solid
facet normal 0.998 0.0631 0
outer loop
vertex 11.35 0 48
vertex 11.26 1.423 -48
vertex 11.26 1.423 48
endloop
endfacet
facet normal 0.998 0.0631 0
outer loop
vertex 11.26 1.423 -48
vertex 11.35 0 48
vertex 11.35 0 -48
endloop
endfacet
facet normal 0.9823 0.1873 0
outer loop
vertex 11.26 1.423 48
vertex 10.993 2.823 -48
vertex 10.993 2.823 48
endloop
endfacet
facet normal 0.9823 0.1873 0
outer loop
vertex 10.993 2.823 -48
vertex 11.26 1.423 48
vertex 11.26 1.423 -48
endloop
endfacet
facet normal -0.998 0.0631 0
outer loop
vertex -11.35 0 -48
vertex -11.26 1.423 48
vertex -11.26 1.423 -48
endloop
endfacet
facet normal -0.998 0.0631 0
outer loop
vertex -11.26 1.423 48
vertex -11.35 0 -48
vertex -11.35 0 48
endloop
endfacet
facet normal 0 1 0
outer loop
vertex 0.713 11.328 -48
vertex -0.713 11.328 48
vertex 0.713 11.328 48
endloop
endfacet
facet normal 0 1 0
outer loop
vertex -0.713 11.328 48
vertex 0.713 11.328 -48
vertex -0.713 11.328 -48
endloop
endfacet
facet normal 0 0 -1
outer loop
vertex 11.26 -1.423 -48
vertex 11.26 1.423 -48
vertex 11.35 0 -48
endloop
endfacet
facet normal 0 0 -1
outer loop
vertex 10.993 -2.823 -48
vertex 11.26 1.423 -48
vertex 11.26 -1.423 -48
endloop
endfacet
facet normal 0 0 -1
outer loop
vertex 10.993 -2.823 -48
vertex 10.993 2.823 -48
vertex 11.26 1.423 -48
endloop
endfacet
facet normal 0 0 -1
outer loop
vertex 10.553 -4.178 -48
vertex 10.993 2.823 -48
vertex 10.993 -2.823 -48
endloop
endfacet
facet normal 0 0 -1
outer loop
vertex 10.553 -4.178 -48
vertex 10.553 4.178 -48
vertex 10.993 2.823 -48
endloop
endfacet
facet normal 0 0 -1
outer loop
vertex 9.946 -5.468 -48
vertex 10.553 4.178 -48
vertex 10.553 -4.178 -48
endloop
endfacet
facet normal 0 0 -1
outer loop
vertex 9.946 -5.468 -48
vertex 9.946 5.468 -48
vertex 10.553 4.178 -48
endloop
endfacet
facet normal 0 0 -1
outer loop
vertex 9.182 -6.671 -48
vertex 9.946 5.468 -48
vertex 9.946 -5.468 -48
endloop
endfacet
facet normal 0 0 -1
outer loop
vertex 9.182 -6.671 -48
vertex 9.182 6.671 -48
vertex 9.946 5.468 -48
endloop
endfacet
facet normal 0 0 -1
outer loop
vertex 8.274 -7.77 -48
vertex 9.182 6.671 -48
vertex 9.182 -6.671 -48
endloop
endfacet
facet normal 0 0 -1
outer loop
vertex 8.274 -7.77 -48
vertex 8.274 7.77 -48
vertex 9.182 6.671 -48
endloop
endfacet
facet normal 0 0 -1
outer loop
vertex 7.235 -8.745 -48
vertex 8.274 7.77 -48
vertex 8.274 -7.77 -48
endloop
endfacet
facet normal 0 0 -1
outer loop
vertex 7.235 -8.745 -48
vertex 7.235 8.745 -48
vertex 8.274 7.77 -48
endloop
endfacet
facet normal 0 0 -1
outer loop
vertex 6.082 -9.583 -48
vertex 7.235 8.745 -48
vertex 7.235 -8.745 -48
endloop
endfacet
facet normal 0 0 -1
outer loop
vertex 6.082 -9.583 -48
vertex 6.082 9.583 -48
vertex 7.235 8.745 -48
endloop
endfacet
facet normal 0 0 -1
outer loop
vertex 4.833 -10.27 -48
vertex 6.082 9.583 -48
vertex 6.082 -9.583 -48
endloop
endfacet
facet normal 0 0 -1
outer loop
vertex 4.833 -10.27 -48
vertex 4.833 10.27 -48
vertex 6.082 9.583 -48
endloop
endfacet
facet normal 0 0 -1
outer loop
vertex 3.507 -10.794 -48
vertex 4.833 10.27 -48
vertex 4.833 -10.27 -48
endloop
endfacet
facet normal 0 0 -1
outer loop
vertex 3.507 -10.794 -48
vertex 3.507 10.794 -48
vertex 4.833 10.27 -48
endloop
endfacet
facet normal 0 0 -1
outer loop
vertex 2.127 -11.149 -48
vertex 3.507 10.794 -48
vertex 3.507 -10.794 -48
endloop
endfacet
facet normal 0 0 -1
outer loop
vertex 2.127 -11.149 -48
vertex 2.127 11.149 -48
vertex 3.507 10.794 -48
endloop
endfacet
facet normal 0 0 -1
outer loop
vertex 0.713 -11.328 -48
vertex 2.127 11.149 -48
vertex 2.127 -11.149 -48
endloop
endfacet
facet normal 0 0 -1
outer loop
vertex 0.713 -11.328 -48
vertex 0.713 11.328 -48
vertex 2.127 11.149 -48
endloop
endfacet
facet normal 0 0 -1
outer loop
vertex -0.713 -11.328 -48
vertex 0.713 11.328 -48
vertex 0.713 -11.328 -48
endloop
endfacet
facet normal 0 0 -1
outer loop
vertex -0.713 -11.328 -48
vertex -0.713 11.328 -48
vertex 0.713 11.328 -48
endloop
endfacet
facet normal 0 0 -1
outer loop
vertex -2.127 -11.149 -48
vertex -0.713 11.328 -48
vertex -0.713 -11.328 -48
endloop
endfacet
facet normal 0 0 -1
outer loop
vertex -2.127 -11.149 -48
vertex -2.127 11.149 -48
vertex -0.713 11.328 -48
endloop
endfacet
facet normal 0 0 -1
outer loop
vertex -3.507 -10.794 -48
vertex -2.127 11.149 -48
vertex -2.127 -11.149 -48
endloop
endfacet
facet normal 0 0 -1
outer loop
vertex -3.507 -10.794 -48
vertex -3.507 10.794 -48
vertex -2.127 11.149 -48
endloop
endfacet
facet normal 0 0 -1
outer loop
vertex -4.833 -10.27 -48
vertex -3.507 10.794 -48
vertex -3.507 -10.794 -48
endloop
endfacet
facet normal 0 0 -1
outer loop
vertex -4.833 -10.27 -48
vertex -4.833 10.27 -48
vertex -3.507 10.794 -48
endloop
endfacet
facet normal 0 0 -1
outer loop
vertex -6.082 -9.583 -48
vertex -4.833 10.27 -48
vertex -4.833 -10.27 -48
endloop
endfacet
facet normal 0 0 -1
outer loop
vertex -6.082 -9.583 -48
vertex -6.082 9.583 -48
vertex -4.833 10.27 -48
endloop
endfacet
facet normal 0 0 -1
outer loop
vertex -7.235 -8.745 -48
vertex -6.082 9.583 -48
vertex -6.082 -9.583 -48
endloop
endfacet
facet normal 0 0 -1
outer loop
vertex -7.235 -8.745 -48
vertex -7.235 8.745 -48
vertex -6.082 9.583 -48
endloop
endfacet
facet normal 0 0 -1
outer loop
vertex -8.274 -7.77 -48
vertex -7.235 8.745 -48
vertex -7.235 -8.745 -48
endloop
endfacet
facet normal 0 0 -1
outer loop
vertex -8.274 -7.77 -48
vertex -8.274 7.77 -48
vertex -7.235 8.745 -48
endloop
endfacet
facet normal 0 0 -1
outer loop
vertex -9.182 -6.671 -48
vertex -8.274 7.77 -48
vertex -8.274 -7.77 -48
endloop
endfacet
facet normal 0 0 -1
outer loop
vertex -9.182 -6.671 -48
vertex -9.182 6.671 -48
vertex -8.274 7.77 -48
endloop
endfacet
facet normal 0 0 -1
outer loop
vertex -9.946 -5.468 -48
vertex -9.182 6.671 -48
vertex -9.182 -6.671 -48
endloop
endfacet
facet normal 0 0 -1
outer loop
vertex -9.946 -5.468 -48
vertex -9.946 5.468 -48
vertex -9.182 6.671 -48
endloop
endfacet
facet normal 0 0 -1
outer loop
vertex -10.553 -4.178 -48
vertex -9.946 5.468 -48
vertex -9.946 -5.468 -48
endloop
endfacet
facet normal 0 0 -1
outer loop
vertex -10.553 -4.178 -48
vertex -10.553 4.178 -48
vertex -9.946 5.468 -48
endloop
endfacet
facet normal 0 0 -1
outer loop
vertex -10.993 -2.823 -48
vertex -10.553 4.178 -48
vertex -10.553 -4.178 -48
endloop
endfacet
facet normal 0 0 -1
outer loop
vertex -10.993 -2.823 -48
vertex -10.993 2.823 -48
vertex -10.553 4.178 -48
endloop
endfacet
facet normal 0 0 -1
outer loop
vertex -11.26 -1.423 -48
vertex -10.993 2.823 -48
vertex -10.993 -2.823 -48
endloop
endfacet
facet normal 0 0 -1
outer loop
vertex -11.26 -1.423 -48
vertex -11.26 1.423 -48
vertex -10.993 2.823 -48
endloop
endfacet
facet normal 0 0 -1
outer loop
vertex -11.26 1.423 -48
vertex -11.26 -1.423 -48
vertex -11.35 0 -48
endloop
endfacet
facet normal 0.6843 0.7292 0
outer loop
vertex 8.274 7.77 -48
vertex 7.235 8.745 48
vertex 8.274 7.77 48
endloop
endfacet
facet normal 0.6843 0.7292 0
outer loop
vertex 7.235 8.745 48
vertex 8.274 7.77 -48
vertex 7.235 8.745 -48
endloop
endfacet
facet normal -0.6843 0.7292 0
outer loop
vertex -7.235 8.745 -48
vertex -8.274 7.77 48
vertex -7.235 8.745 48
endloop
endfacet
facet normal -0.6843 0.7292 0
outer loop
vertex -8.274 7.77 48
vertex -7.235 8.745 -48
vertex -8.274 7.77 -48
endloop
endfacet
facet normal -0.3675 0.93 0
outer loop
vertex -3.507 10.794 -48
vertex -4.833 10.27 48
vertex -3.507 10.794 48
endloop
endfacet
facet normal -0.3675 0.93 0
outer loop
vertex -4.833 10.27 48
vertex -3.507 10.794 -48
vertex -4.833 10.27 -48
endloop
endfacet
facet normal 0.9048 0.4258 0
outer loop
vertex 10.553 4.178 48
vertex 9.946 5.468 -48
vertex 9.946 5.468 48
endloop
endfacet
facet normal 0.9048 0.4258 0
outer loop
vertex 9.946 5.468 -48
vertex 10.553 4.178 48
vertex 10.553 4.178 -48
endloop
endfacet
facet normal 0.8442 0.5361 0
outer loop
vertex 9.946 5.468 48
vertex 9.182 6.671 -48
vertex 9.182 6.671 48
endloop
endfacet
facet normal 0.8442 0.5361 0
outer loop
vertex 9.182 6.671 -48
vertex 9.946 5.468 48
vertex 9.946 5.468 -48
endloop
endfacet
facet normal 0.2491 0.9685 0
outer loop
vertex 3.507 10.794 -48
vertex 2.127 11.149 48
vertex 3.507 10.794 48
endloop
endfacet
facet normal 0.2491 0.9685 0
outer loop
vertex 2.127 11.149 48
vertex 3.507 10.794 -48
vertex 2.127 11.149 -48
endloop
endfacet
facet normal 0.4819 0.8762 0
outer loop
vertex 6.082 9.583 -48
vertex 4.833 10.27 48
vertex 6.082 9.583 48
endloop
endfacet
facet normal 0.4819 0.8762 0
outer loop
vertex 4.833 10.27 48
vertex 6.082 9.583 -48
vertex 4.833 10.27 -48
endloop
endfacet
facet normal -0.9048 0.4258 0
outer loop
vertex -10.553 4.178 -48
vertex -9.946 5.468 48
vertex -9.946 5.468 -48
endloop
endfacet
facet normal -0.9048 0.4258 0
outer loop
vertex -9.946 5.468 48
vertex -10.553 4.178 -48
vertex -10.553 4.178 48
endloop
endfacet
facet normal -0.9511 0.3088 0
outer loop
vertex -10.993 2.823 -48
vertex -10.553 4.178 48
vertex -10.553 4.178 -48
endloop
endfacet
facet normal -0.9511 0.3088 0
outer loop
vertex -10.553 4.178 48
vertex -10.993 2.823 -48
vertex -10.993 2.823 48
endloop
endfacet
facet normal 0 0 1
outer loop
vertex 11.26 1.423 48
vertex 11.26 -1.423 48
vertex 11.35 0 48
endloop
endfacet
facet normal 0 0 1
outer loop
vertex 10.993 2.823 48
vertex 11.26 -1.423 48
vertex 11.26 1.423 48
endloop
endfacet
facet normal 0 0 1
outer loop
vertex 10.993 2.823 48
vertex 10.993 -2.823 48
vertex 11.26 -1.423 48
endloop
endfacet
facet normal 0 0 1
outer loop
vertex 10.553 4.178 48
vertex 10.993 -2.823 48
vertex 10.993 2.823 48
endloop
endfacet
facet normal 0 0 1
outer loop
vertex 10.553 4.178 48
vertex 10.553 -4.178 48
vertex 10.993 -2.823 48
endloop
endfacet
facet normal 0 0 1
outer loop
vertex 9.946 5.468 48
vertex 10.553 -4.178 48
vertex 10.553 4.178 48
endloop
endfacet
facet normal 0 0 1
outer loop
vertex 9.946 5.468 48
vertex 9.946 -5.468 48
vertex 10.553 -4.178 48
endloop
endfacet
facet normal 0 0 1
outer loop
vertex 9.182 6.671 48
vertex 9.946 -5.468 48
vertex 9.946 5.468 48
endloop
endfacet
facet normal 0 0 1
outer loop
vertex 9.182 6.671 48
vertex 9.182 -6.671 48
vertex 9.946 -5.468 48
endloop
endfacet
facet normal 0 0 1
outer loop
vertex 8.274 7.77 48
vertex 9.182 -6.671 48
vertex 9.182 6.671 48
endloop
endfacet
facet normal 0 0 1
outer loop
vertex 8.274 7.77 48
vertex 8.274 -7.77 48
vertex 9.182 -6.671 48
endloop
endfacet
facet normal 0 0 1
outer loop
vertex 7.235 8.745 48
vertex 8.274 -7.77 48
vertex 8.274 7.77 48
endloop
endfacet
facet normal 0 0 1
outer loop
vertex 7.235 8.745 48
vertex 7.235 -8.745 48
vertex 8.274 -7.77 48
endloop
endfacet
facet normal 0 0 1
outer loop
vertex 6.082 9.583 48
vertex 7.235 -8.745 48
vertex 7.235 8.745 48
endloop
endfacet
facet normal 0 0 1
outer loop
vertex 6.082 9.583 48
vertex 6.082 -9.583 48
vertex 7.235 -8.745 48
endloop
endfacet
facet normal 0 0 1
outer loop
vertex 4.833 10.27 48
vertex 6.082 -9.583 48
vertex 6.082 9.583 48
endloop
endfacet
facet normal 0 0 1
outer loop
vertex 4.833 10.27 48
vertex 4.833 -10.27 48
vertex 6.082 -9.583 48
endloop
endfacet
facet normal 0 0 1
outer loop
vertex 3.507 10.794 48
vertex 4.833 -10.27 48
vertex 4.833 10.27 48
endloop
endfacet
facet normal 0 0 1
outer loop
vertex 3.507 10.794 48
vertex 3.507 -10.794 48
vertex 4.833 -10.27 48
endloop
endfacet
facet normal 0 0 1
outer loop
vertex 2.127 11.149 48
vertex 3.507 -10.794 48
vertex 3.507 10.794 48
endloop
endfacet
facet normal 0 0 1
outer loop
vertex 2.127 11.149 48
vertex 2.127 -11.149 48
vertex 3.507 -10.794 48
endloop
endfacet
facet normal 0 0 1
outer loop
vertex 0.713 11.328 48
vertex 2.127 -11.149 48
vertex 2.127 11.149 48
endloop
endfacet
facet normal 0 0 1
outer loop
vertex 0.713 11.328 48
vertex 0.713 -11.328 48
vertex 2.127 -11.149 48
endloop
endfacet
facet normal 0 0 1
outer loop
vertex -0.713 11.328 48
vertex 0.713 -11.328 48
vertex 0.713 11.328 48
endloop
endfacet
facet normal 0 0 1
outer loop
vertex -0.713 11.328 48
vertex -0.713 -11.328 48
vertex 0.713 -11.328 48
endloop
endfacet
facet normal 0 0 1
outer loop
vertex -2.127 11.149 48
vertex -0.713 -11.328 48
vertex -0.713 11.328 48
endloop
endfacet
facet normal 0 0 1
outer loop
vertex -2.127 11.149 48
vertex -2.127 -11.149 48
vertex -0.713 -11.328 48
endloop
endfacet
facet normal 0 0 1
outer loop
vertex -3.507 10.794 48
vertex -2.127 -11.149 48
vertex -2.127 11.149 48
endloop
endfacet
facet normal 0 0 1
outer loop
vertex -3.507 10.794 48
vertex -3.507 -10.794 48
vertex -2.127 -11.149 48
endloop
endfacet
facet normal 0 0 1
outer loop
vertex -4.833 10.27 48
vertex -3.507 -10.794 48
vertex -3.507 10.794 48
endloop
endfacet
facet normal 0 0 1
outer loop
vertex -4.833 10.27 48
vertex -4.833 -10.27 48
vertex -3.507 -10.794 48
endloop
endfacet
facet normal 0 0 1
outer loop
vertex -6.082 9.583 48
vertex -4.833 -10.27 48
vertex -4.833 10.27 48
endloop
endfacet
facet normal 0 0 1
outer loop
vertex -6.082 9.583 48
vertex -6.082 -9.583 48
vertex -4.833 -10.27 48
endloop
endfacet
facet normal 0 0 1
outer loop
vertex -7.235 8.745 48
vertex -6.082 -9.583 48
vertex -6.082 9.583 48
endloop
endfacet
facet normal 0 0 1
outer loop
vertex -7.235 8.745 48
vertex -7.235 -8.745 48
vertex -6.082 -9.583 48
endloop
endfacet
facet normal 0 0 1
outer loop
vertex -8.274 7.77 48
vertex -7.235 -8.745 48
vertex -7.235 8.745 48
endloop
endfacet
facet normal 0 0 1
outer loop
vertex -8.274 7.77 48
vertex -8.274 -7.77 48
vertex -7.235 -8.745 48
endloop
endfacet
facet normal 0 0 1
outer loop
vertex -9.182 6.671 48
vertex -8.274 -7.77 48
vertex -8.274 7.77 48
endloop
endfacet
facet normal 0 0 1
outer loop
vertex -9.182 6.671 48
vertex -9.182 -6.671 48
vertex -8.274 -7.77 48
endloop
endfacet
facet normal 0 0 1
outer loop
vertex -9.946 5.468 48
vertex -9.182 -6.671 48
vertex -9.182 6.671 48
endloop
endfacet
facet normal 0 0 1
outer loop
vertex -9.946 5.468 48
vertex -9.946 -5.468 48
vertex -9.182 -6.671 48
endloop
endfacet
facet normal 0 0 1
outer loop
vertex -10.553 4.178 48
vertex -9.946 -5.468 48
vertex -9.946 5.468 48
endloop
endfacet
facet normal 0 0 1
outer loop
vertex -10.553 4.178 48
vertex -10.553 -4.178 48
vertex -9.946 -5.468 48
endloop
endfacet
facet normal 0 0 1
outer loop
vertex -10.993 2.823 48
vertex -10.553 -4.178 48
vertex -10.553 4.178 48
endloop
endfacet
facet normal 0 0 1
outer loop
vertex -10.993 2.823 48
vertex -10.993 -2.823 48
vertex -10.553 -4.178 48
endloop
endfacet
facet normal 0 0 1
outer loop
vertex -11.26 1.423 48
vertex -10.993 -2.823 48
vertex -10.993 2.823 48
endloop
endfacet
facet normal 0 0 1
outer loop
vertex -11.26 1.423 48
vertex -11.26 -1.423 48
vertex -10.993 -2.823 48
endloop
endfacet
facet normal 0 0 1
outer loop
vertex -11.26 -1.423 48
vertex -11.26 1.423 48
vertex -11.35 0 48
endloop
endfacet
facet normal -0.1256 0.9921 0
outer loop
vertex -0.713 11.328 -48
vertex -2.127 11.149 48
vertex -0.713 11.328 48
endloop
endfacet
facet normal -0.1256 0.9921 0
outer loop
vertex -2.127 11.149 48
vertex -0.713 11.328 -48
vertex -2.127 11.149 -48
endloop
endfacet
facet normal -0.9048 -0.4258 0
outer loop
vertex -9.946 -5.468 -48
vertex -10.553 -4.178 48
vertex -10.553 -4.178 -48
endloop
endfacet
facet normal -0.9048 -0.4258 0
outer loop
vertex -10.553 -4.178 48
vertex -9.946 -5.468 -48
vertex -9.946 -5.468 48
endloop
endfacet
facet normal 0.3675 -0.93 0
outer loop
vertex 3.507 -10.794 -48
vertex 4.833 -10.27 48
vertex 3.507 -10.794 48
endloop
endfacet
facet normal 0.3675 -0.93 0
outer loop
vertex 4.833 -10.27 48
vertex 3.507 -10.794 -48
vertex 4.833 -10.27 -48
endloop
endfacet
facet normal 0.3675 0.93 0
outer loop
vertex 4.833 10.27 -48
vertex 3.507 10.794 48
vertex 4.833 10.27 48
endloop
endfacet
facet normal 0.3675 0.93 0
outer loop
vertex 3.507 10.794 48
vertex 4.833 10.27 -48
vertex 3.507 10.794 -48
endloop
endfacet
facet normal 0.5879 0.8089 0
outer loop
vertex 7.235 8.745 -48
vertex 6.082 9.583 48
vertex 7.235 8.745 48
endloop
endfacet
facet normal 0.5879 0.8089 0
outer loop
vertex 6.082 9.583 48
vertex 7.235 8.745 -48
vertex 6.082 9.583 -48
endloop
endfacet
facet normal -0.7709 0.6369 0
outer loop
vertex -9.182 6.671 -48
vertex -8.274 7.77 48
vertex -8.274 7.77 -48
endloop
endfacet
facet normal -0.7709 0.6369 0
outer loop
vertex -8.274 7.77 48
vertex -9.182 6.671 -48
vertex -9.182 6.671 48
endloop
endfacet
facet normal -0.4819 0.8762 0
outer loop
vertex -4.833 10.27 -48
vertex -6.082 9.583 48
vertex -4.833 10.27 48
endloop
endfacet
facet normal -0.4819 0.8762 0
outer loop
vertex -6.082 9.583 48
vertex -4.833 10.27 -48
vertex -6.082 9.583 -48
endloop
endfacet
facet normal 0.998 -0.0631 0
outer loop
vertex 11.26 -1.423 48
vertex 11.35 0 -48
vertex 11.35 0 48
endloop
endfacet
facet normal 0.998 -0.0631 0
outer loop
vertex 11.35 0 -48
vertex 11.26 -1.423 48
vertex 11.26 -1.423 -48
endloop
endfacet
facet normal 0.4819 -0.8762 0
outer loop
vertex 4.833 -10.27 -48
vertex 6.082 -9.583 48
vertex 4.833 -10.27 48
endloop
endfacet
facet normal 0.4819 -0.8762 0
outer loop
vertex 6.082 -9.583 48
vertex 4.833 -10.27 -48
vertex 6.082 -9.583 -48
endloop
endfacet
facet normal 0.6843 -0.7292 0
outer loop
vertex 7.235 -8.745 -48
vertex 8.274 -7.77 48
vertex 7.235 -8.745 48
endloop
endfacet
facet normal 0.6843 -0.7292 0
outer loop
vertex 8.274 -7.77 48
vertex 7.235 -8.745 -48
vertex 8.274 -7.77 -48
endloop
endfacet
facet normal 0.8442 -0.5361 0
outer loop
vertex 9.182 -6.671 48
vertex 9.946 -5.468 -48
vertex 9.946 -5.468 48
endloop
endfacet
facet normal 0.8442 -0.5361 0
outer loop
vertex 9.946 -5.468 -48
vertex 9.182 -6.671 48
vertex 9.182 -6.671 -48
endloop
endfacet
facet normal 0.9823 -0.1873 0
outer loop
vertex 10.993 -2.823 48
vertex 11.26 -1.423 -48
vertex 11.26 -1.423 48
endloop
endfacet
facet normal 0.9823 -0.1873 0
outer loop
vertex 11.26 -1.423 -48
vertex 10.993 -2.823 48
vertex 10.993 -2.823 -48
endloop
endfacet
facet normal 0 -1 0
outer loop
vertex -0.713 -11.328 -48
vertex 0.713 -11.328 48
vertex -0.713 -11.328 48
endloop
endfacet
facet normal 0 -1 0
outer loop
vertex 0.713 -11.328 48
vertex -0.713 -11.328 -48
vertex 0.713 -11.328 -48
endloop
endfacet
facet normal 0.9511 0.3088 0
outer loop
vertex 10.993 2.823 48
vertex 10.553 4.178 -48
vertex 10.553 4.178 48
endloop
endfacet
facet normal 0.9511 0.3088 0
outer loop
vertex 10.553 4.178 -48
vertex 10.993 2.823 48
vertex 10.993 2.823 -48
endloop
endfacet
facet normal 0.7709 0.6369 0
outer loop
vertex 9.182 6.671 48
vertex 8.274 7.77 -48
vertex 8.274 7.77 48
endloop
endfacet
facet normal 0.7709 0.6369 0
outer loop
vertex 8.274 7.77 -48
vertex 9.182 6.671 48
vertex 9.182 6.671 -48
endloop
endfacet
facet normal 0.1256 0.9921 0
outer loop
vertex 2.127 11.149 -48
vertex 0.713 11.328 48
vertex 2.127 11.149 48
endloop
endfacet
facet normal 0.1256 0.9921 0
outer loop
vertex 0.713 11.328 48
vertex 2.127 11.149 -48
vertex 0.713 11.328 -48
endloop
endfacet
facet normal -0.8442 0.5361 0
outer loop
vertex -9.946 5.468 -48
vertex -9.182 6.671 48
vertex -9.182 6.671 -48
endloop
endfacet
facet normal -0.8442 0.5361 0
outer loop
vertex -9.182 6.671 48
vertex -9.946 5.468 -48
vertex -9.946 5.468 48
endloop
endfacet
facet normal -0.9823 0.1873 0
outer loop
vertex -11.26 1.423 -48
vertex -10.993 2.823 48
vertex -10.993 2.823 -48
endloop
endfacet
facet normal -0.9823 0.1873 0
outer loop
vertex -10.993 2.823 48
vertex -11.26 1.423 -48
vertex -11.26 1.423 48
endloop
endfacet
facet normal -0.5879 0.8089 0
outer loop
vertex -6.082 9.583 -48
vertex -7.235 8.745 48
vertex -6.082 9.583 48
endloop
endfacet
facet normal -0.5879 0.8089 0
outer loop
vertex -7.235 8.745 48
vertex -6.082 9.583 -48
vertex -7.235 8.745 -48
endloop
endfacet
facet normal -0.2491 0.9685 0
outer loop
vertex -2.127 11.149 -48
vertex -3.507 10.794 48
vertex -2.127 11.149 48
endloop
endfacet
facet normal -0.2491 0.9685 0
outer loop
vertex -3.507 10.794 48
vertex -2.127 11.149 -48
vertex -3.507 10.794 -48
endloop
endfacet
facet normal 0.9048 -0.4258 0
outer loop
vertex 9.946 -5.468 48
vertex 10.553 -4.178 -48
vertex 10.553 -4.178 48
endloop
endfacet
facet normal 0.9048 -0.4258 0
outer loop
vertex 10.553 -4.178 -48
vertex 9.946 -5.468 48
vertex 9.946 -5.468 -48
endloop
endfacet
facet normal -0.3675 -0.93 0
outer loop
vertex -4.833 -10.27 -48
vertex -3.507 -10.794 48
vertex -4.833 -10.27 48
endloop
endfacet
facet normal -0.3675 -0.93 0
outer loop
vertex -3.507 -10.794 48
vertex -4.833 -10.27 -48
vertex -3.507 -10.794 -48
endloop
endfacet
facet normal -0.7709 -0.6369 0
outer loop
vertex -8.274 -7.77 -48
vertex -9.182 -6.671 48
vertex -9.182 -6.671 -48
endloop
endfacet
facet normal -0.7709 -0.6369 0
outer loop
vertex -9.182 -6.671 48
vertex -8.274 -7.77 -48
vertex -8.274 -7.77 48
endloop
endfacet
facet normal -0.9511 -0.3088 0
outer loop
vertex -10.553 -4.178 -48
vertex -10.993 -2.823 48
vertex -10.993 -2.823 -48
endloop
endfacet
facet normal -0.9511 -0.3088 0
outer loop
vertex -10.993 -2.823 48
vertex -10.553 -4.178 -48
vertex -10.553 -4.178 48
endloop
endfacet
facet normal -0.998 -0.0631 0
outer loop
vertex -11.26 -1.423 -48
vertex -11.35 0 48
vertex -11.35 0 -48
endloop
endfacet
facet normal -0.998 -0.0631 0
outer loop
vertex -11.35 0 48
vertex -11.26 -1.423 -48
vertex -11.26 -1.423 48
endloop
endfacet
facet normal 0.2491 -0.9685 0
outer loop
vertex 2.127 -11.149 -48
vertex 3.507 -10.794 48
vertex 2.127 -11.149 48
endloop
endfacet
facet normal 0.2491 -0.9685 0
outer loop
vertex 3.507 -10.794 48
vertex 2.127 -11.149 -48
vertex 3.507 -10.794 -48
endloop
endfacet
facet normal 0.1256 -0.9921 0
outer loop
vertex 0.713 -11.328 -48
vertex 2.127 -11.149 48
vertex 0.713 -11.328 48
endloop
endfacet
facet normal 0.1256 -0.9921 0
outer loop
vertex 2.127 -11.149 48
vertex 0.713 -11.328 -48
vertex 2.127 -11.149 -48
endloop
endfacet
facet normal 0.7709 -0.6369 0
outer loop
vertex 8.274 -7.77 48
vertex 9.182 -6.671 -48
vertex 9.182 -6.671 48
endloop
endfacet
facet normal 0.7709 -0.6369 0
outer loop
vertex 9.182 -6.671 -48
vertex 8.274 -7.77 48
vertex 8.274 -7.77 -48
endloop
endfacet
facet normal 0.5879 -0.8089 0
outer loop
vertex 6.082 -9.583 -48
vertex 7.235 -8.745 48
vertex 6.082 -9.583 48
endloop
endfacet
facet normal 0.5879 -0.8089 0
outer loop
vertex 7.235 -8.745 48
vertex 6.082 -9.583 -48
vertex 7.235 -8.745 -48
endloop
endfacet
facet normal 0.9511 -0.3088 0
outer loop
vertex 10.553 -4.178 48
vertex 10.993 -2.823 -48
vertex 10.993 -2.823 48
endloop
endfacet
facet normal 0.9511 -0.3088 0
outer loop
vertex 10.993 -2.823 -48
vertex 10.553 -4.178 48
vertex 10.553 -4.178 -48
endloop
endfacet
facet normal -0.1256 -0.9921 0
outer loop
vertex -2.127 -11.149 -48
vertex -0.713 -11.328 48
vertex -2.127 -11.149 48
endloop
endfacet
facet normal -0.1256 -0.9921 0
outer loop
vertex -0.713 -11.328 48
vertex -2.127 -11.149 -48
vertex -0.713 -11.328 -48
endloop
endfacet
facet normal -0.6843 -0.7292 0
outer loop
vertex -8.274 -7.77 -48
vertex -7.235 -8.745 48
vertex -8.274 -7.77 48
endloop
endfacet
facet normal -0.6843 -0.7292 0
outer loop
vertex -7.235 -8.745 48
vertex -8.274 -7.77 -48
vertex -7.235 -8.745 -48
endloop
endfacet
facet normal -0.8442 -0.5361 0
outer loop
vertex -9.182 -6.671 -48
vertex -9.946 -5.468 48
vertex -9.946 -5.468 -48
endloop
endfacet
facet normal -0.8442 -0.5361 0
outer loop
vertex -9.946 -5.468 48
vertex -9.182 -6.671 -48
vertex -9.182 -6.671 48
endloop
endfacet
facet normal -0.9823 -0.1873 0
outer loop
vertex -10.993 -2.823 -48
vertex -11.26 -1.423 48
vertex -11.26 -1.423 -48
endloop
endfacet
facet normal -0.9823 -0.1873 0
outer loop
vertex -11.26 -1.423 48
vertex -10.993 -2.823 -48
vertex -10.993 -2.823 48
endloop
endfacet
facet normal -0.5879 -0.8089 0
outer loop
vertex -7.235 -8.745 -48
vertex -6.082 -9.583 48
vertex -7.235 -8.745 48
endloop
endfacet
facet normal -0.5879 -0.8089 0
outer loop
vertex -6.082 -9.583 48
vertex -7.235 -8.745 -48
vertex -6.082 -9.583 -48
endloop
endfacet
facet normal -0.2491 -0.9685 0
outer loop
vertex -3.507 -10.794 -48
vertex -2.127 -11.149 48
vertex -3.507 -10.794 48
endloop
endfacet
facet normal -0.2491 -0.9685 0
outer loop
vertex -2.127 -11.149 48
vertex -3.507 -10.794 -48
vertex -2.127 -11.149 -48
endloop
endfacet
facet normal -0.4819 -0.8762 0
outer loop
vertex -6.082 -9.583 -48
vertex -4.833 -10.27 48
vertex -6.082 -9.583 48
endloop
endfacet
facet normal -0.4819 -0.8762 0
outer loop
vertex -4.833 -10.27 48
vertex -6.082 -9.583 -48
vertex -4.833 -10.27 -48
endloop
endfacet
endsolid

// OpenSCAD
$fn = 50;


difference() {
	union() {
		translate(v = [0, 0, -48.0000000000]) {
			cylinder(h = 96, r = 11.3500000000);
		}
	}
	union() {
		translate(v = [0, 0, -100.0000000000]) {
			cylinder(h = 200, r = 0);
		}
	}
}
